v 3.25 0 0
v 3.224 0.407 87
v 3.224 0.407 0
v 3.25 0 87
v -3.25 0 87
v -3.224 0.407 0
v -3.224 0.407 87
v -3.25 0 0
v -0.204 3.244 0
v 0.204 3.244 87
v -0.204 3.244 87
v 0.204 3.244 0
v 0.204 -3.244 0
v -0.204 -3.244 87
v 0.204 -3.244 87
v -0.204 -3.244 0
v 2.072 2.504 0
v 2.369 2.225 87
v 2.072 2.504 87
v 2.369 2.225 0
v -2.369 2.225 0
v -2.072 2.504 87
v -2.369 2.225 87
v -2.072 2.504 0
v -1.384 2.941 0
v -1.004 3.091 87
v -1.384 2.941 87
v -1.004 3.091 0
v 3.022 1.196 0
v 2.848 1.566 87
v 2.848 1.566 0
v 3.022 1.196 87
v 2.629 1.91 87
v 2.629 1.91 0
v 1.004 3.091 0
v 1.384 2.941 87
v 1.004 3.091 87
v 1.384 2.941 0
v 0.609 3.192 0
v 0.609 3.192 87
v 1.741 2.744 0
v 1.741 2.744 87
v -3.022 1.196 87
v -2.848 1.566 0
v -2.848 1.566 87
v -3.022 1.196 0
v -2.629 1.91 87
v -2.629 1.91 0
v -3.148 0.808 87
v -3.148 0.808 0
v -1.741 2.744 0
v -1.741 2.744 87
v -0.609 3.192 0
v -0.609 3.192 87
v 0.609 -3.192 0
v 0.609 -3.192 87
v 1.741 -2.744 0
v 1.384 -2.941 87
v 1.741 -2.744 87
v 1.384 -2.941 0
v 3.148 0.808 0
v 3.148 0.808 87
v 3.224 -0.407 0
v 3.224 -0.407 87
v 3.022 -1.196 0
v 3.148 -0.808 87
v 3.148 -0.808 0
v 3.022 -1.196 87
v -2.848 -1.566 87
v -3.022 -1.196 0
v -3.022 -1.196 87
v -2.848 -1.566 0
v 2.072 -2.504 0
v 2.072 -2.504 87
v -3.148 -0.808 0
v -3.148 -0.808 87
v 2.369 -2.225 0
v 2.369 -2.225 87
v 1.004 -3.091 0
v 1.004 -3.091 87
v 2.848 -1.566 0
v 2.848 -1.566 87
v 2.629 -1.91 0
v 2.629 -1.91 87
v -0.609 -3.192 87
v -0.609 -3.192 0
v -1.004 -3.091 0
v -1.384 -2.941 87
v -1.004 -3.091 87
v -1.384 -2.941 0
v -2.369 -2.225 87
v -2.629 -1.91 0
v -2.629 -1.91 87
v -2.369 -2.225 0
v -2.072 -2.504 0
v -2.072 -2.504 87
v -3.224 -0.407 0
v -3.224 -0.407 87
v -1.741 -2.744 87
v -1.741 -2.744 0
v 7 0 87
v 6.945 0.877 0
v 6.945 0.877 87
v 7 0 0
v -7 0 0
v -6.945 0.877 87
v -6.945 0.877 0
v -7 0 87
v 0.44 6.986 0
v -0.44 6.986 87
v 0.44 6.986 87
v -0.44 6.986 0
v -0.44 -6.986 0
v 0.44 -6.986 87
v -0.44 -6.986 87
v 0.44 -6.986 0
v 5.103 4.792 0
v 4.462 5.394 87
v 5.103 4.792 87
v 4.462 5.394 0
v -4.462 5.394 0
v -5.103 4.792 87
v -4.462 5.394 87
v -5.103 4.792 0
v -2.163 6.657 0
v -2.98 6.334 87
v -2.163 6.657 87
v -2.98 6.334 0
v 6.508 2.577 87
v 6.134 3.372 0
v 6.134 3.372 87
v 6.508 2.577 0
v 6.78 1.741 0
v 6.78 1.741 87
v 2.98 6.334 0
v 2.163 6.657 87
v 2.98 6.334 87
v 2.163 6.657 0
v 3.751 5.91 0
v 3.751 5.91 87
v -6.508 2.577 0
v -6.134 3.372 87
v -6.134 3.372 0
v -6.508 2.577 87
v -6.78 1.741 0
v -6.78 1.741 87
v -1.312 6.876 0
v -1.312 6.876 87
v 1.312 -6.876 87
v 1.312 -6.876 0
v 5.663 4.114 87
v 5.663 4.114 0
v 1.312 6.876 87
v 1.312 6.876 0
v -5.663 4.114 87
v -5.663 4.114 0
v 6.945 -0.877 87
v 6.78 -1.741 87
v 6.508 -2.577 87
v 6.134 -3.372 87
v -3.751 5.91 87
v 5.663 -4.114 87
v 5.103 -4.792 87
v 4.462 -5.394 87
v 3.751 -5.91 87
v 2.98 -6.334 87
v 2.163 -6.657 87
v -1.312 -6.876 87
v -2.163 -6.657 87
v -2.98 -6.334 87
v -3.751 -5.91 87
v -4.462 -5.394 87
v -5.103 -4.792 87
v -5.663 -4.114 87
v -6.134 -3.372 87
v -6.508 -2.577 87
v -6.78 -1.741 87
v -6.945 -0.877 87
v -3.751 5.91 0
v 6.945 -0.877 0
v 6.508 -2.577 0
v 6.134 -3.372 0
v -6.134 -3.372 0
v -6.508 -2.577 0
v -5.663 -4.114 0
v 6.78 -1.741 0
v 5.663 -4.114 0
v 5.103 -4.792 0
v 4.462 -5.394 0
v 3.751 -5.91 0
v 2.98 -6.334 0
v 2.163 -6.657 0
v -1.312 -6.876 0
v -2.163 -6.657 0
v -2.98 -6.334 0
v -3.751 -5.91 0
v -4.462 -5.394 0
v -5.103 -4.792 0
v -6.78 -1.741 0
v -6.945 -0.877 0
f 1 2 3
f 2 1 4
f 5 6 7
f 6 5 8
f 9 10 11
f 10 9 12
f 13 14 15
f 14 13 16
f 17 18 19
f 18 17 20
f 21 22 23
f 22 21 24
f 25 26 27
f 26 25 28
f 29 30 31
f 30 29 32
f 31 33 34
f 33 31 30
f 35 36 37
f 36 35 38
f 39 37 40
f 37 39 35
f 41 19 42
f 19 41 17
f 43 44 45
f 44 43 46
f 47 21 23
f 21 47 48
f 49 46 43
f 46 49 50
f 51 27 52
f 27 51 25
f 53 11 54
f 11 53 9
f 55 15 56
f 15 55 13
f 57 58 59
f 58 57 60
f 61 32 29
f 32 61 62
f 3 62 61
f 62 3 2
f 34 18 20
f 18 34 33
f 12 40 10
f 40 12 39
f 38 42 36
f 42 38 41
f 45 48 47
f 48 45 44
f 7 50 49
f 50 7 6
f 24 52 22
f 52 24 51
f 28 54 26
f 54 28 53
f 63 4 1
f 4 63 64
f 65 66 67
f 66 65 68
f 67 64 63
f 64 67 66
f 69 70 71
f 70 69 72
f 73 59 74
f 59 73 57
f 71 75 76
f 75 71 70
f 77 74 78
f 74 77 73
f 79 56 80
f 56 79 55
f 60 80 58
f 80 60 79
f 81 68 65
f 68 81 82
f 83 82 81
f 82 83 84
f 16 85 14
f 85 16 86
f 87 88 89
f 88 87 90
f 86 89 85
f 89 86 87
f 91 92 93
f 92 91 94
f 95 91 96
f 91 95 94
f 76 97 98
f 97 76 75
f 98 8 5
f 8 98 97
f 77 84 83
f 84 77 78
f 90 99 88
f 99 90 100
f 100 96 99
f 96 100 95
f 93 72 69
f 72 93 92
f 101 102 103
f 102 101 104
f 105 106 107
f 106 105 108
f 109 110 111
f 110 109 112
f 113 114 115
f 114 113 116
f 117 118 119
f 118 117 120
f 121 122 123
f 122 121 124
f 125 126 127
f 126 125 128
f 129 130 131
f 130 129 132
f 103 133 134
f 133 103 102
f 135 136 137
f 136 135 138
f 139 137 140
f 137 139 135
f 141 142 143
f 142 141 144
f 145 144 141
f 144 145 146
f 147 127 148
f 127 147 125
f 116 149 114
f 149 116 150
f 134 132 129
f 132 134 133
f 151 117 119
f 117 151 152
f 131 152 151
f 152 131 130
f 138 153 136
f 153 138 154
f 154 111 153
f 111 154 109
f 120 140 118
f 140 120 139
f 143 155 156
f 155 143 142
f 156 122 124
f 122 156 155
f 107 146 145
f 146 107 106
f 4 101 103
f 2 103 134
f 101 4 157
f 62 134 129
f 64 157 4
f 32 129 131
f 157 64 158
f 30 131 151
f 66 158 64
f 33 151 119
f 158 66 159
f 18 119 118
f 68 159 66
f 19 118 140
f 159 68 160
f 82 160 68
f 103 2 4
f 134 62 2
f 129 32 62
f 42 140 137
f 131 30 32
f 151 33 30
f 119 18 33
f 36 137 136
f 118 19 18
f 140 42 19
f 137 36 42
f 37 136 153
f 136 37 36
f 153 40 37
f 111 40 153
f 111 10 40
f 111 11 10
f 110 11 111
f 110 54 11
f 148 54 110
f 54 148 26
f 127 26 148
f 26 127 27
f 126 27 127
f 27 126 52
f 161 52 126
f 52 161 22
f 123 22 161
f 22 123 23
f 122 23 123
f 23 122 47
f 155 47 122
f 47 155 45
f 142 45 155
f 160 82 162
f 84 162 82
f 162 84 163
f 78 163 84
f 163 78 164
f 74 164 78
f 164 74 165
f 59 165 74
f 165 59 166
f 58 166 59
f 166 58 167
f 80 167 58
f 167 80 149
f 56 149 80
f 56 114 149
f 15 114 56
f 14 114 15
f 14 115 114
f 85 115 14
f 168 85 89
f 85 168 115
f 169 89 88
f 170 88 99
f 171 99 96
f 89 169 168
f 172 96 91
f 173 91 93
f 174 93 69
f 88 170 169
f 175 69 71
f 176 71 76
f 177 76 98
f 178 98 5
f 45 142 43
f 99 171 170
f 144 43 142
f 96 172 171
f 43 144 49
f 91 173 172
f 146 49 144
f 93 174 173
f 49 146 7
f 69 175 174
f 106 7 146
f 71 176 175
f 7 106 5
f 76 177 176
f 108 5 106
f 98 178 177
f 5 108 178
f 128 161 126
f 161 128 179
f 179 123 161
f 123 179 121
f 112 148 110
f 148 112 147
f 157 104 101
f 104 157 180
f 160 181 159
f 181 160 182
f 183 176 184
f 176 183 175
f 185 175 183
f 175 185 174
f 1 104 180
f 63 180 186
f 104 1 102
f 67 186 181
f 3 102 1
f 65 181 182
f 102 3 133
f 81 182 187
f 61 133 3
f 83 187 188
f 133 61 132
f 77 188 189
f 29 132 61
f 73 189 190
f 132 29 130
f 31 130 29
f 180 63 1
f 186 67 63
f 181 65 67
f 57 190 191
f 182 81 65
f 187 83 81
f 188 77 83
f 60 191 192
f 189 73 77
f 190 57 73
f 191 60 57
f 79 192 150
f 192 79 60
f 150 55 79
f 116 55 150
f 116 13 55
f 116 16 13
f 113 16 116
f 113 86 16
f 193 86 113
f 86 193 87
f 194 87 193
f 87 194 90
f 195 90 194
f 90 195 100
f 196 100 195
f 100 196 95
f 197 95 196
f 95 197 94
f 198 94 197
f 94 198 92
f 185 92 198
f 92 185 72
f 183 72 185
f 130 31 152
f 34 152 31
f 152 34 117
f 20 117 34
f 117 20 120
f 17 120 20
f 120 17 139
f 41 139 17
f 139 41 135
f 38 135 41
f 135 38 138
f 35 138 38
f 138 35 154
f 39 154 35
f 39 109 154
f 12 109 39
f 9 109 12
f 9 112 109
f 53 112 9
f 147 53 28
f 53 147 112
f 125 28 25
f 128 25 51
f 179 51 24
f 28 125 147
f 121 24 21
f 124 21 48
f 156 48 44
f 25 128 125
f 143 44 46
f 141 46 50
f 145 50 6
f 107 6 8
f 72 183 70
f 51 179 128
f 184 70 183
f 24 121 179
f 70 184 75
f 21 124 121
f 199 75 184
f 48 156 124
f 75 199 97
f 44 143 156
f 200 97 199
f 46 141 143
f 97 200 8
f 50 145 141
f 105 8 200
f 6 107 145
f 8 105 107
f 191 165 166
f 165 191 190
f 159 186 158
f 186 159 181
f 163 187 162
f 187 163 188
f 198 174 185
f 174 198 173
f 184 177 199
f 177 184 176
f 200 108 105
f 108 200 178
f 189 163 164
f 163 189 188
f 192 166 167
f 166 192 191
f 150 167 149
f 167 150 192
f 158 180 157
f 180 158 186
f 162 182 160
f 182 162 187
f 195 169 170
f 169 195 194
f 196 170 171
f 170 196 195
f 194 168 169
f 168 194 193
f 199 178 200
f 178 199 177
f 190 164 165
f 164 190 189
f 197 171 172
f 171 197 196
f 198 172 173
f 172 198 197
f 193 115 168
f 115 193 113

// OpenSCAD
$fn = 50;


difference() {
	union() {
		cylinder(h = 87, r = 7.0000000000);
	}
	union() {
		translate(v = [0.0000000000, 0.0000000000, -100.0000000000]) {
			cylinder(h = 200, r = 3.2500000000);
		}
		cylinder(h = 87, r = 1.8000000000);
		cylinder(h = 87, r = 1.8000000000);
		cylinder(h = 87, r = 1.8000000000);
	}
}
